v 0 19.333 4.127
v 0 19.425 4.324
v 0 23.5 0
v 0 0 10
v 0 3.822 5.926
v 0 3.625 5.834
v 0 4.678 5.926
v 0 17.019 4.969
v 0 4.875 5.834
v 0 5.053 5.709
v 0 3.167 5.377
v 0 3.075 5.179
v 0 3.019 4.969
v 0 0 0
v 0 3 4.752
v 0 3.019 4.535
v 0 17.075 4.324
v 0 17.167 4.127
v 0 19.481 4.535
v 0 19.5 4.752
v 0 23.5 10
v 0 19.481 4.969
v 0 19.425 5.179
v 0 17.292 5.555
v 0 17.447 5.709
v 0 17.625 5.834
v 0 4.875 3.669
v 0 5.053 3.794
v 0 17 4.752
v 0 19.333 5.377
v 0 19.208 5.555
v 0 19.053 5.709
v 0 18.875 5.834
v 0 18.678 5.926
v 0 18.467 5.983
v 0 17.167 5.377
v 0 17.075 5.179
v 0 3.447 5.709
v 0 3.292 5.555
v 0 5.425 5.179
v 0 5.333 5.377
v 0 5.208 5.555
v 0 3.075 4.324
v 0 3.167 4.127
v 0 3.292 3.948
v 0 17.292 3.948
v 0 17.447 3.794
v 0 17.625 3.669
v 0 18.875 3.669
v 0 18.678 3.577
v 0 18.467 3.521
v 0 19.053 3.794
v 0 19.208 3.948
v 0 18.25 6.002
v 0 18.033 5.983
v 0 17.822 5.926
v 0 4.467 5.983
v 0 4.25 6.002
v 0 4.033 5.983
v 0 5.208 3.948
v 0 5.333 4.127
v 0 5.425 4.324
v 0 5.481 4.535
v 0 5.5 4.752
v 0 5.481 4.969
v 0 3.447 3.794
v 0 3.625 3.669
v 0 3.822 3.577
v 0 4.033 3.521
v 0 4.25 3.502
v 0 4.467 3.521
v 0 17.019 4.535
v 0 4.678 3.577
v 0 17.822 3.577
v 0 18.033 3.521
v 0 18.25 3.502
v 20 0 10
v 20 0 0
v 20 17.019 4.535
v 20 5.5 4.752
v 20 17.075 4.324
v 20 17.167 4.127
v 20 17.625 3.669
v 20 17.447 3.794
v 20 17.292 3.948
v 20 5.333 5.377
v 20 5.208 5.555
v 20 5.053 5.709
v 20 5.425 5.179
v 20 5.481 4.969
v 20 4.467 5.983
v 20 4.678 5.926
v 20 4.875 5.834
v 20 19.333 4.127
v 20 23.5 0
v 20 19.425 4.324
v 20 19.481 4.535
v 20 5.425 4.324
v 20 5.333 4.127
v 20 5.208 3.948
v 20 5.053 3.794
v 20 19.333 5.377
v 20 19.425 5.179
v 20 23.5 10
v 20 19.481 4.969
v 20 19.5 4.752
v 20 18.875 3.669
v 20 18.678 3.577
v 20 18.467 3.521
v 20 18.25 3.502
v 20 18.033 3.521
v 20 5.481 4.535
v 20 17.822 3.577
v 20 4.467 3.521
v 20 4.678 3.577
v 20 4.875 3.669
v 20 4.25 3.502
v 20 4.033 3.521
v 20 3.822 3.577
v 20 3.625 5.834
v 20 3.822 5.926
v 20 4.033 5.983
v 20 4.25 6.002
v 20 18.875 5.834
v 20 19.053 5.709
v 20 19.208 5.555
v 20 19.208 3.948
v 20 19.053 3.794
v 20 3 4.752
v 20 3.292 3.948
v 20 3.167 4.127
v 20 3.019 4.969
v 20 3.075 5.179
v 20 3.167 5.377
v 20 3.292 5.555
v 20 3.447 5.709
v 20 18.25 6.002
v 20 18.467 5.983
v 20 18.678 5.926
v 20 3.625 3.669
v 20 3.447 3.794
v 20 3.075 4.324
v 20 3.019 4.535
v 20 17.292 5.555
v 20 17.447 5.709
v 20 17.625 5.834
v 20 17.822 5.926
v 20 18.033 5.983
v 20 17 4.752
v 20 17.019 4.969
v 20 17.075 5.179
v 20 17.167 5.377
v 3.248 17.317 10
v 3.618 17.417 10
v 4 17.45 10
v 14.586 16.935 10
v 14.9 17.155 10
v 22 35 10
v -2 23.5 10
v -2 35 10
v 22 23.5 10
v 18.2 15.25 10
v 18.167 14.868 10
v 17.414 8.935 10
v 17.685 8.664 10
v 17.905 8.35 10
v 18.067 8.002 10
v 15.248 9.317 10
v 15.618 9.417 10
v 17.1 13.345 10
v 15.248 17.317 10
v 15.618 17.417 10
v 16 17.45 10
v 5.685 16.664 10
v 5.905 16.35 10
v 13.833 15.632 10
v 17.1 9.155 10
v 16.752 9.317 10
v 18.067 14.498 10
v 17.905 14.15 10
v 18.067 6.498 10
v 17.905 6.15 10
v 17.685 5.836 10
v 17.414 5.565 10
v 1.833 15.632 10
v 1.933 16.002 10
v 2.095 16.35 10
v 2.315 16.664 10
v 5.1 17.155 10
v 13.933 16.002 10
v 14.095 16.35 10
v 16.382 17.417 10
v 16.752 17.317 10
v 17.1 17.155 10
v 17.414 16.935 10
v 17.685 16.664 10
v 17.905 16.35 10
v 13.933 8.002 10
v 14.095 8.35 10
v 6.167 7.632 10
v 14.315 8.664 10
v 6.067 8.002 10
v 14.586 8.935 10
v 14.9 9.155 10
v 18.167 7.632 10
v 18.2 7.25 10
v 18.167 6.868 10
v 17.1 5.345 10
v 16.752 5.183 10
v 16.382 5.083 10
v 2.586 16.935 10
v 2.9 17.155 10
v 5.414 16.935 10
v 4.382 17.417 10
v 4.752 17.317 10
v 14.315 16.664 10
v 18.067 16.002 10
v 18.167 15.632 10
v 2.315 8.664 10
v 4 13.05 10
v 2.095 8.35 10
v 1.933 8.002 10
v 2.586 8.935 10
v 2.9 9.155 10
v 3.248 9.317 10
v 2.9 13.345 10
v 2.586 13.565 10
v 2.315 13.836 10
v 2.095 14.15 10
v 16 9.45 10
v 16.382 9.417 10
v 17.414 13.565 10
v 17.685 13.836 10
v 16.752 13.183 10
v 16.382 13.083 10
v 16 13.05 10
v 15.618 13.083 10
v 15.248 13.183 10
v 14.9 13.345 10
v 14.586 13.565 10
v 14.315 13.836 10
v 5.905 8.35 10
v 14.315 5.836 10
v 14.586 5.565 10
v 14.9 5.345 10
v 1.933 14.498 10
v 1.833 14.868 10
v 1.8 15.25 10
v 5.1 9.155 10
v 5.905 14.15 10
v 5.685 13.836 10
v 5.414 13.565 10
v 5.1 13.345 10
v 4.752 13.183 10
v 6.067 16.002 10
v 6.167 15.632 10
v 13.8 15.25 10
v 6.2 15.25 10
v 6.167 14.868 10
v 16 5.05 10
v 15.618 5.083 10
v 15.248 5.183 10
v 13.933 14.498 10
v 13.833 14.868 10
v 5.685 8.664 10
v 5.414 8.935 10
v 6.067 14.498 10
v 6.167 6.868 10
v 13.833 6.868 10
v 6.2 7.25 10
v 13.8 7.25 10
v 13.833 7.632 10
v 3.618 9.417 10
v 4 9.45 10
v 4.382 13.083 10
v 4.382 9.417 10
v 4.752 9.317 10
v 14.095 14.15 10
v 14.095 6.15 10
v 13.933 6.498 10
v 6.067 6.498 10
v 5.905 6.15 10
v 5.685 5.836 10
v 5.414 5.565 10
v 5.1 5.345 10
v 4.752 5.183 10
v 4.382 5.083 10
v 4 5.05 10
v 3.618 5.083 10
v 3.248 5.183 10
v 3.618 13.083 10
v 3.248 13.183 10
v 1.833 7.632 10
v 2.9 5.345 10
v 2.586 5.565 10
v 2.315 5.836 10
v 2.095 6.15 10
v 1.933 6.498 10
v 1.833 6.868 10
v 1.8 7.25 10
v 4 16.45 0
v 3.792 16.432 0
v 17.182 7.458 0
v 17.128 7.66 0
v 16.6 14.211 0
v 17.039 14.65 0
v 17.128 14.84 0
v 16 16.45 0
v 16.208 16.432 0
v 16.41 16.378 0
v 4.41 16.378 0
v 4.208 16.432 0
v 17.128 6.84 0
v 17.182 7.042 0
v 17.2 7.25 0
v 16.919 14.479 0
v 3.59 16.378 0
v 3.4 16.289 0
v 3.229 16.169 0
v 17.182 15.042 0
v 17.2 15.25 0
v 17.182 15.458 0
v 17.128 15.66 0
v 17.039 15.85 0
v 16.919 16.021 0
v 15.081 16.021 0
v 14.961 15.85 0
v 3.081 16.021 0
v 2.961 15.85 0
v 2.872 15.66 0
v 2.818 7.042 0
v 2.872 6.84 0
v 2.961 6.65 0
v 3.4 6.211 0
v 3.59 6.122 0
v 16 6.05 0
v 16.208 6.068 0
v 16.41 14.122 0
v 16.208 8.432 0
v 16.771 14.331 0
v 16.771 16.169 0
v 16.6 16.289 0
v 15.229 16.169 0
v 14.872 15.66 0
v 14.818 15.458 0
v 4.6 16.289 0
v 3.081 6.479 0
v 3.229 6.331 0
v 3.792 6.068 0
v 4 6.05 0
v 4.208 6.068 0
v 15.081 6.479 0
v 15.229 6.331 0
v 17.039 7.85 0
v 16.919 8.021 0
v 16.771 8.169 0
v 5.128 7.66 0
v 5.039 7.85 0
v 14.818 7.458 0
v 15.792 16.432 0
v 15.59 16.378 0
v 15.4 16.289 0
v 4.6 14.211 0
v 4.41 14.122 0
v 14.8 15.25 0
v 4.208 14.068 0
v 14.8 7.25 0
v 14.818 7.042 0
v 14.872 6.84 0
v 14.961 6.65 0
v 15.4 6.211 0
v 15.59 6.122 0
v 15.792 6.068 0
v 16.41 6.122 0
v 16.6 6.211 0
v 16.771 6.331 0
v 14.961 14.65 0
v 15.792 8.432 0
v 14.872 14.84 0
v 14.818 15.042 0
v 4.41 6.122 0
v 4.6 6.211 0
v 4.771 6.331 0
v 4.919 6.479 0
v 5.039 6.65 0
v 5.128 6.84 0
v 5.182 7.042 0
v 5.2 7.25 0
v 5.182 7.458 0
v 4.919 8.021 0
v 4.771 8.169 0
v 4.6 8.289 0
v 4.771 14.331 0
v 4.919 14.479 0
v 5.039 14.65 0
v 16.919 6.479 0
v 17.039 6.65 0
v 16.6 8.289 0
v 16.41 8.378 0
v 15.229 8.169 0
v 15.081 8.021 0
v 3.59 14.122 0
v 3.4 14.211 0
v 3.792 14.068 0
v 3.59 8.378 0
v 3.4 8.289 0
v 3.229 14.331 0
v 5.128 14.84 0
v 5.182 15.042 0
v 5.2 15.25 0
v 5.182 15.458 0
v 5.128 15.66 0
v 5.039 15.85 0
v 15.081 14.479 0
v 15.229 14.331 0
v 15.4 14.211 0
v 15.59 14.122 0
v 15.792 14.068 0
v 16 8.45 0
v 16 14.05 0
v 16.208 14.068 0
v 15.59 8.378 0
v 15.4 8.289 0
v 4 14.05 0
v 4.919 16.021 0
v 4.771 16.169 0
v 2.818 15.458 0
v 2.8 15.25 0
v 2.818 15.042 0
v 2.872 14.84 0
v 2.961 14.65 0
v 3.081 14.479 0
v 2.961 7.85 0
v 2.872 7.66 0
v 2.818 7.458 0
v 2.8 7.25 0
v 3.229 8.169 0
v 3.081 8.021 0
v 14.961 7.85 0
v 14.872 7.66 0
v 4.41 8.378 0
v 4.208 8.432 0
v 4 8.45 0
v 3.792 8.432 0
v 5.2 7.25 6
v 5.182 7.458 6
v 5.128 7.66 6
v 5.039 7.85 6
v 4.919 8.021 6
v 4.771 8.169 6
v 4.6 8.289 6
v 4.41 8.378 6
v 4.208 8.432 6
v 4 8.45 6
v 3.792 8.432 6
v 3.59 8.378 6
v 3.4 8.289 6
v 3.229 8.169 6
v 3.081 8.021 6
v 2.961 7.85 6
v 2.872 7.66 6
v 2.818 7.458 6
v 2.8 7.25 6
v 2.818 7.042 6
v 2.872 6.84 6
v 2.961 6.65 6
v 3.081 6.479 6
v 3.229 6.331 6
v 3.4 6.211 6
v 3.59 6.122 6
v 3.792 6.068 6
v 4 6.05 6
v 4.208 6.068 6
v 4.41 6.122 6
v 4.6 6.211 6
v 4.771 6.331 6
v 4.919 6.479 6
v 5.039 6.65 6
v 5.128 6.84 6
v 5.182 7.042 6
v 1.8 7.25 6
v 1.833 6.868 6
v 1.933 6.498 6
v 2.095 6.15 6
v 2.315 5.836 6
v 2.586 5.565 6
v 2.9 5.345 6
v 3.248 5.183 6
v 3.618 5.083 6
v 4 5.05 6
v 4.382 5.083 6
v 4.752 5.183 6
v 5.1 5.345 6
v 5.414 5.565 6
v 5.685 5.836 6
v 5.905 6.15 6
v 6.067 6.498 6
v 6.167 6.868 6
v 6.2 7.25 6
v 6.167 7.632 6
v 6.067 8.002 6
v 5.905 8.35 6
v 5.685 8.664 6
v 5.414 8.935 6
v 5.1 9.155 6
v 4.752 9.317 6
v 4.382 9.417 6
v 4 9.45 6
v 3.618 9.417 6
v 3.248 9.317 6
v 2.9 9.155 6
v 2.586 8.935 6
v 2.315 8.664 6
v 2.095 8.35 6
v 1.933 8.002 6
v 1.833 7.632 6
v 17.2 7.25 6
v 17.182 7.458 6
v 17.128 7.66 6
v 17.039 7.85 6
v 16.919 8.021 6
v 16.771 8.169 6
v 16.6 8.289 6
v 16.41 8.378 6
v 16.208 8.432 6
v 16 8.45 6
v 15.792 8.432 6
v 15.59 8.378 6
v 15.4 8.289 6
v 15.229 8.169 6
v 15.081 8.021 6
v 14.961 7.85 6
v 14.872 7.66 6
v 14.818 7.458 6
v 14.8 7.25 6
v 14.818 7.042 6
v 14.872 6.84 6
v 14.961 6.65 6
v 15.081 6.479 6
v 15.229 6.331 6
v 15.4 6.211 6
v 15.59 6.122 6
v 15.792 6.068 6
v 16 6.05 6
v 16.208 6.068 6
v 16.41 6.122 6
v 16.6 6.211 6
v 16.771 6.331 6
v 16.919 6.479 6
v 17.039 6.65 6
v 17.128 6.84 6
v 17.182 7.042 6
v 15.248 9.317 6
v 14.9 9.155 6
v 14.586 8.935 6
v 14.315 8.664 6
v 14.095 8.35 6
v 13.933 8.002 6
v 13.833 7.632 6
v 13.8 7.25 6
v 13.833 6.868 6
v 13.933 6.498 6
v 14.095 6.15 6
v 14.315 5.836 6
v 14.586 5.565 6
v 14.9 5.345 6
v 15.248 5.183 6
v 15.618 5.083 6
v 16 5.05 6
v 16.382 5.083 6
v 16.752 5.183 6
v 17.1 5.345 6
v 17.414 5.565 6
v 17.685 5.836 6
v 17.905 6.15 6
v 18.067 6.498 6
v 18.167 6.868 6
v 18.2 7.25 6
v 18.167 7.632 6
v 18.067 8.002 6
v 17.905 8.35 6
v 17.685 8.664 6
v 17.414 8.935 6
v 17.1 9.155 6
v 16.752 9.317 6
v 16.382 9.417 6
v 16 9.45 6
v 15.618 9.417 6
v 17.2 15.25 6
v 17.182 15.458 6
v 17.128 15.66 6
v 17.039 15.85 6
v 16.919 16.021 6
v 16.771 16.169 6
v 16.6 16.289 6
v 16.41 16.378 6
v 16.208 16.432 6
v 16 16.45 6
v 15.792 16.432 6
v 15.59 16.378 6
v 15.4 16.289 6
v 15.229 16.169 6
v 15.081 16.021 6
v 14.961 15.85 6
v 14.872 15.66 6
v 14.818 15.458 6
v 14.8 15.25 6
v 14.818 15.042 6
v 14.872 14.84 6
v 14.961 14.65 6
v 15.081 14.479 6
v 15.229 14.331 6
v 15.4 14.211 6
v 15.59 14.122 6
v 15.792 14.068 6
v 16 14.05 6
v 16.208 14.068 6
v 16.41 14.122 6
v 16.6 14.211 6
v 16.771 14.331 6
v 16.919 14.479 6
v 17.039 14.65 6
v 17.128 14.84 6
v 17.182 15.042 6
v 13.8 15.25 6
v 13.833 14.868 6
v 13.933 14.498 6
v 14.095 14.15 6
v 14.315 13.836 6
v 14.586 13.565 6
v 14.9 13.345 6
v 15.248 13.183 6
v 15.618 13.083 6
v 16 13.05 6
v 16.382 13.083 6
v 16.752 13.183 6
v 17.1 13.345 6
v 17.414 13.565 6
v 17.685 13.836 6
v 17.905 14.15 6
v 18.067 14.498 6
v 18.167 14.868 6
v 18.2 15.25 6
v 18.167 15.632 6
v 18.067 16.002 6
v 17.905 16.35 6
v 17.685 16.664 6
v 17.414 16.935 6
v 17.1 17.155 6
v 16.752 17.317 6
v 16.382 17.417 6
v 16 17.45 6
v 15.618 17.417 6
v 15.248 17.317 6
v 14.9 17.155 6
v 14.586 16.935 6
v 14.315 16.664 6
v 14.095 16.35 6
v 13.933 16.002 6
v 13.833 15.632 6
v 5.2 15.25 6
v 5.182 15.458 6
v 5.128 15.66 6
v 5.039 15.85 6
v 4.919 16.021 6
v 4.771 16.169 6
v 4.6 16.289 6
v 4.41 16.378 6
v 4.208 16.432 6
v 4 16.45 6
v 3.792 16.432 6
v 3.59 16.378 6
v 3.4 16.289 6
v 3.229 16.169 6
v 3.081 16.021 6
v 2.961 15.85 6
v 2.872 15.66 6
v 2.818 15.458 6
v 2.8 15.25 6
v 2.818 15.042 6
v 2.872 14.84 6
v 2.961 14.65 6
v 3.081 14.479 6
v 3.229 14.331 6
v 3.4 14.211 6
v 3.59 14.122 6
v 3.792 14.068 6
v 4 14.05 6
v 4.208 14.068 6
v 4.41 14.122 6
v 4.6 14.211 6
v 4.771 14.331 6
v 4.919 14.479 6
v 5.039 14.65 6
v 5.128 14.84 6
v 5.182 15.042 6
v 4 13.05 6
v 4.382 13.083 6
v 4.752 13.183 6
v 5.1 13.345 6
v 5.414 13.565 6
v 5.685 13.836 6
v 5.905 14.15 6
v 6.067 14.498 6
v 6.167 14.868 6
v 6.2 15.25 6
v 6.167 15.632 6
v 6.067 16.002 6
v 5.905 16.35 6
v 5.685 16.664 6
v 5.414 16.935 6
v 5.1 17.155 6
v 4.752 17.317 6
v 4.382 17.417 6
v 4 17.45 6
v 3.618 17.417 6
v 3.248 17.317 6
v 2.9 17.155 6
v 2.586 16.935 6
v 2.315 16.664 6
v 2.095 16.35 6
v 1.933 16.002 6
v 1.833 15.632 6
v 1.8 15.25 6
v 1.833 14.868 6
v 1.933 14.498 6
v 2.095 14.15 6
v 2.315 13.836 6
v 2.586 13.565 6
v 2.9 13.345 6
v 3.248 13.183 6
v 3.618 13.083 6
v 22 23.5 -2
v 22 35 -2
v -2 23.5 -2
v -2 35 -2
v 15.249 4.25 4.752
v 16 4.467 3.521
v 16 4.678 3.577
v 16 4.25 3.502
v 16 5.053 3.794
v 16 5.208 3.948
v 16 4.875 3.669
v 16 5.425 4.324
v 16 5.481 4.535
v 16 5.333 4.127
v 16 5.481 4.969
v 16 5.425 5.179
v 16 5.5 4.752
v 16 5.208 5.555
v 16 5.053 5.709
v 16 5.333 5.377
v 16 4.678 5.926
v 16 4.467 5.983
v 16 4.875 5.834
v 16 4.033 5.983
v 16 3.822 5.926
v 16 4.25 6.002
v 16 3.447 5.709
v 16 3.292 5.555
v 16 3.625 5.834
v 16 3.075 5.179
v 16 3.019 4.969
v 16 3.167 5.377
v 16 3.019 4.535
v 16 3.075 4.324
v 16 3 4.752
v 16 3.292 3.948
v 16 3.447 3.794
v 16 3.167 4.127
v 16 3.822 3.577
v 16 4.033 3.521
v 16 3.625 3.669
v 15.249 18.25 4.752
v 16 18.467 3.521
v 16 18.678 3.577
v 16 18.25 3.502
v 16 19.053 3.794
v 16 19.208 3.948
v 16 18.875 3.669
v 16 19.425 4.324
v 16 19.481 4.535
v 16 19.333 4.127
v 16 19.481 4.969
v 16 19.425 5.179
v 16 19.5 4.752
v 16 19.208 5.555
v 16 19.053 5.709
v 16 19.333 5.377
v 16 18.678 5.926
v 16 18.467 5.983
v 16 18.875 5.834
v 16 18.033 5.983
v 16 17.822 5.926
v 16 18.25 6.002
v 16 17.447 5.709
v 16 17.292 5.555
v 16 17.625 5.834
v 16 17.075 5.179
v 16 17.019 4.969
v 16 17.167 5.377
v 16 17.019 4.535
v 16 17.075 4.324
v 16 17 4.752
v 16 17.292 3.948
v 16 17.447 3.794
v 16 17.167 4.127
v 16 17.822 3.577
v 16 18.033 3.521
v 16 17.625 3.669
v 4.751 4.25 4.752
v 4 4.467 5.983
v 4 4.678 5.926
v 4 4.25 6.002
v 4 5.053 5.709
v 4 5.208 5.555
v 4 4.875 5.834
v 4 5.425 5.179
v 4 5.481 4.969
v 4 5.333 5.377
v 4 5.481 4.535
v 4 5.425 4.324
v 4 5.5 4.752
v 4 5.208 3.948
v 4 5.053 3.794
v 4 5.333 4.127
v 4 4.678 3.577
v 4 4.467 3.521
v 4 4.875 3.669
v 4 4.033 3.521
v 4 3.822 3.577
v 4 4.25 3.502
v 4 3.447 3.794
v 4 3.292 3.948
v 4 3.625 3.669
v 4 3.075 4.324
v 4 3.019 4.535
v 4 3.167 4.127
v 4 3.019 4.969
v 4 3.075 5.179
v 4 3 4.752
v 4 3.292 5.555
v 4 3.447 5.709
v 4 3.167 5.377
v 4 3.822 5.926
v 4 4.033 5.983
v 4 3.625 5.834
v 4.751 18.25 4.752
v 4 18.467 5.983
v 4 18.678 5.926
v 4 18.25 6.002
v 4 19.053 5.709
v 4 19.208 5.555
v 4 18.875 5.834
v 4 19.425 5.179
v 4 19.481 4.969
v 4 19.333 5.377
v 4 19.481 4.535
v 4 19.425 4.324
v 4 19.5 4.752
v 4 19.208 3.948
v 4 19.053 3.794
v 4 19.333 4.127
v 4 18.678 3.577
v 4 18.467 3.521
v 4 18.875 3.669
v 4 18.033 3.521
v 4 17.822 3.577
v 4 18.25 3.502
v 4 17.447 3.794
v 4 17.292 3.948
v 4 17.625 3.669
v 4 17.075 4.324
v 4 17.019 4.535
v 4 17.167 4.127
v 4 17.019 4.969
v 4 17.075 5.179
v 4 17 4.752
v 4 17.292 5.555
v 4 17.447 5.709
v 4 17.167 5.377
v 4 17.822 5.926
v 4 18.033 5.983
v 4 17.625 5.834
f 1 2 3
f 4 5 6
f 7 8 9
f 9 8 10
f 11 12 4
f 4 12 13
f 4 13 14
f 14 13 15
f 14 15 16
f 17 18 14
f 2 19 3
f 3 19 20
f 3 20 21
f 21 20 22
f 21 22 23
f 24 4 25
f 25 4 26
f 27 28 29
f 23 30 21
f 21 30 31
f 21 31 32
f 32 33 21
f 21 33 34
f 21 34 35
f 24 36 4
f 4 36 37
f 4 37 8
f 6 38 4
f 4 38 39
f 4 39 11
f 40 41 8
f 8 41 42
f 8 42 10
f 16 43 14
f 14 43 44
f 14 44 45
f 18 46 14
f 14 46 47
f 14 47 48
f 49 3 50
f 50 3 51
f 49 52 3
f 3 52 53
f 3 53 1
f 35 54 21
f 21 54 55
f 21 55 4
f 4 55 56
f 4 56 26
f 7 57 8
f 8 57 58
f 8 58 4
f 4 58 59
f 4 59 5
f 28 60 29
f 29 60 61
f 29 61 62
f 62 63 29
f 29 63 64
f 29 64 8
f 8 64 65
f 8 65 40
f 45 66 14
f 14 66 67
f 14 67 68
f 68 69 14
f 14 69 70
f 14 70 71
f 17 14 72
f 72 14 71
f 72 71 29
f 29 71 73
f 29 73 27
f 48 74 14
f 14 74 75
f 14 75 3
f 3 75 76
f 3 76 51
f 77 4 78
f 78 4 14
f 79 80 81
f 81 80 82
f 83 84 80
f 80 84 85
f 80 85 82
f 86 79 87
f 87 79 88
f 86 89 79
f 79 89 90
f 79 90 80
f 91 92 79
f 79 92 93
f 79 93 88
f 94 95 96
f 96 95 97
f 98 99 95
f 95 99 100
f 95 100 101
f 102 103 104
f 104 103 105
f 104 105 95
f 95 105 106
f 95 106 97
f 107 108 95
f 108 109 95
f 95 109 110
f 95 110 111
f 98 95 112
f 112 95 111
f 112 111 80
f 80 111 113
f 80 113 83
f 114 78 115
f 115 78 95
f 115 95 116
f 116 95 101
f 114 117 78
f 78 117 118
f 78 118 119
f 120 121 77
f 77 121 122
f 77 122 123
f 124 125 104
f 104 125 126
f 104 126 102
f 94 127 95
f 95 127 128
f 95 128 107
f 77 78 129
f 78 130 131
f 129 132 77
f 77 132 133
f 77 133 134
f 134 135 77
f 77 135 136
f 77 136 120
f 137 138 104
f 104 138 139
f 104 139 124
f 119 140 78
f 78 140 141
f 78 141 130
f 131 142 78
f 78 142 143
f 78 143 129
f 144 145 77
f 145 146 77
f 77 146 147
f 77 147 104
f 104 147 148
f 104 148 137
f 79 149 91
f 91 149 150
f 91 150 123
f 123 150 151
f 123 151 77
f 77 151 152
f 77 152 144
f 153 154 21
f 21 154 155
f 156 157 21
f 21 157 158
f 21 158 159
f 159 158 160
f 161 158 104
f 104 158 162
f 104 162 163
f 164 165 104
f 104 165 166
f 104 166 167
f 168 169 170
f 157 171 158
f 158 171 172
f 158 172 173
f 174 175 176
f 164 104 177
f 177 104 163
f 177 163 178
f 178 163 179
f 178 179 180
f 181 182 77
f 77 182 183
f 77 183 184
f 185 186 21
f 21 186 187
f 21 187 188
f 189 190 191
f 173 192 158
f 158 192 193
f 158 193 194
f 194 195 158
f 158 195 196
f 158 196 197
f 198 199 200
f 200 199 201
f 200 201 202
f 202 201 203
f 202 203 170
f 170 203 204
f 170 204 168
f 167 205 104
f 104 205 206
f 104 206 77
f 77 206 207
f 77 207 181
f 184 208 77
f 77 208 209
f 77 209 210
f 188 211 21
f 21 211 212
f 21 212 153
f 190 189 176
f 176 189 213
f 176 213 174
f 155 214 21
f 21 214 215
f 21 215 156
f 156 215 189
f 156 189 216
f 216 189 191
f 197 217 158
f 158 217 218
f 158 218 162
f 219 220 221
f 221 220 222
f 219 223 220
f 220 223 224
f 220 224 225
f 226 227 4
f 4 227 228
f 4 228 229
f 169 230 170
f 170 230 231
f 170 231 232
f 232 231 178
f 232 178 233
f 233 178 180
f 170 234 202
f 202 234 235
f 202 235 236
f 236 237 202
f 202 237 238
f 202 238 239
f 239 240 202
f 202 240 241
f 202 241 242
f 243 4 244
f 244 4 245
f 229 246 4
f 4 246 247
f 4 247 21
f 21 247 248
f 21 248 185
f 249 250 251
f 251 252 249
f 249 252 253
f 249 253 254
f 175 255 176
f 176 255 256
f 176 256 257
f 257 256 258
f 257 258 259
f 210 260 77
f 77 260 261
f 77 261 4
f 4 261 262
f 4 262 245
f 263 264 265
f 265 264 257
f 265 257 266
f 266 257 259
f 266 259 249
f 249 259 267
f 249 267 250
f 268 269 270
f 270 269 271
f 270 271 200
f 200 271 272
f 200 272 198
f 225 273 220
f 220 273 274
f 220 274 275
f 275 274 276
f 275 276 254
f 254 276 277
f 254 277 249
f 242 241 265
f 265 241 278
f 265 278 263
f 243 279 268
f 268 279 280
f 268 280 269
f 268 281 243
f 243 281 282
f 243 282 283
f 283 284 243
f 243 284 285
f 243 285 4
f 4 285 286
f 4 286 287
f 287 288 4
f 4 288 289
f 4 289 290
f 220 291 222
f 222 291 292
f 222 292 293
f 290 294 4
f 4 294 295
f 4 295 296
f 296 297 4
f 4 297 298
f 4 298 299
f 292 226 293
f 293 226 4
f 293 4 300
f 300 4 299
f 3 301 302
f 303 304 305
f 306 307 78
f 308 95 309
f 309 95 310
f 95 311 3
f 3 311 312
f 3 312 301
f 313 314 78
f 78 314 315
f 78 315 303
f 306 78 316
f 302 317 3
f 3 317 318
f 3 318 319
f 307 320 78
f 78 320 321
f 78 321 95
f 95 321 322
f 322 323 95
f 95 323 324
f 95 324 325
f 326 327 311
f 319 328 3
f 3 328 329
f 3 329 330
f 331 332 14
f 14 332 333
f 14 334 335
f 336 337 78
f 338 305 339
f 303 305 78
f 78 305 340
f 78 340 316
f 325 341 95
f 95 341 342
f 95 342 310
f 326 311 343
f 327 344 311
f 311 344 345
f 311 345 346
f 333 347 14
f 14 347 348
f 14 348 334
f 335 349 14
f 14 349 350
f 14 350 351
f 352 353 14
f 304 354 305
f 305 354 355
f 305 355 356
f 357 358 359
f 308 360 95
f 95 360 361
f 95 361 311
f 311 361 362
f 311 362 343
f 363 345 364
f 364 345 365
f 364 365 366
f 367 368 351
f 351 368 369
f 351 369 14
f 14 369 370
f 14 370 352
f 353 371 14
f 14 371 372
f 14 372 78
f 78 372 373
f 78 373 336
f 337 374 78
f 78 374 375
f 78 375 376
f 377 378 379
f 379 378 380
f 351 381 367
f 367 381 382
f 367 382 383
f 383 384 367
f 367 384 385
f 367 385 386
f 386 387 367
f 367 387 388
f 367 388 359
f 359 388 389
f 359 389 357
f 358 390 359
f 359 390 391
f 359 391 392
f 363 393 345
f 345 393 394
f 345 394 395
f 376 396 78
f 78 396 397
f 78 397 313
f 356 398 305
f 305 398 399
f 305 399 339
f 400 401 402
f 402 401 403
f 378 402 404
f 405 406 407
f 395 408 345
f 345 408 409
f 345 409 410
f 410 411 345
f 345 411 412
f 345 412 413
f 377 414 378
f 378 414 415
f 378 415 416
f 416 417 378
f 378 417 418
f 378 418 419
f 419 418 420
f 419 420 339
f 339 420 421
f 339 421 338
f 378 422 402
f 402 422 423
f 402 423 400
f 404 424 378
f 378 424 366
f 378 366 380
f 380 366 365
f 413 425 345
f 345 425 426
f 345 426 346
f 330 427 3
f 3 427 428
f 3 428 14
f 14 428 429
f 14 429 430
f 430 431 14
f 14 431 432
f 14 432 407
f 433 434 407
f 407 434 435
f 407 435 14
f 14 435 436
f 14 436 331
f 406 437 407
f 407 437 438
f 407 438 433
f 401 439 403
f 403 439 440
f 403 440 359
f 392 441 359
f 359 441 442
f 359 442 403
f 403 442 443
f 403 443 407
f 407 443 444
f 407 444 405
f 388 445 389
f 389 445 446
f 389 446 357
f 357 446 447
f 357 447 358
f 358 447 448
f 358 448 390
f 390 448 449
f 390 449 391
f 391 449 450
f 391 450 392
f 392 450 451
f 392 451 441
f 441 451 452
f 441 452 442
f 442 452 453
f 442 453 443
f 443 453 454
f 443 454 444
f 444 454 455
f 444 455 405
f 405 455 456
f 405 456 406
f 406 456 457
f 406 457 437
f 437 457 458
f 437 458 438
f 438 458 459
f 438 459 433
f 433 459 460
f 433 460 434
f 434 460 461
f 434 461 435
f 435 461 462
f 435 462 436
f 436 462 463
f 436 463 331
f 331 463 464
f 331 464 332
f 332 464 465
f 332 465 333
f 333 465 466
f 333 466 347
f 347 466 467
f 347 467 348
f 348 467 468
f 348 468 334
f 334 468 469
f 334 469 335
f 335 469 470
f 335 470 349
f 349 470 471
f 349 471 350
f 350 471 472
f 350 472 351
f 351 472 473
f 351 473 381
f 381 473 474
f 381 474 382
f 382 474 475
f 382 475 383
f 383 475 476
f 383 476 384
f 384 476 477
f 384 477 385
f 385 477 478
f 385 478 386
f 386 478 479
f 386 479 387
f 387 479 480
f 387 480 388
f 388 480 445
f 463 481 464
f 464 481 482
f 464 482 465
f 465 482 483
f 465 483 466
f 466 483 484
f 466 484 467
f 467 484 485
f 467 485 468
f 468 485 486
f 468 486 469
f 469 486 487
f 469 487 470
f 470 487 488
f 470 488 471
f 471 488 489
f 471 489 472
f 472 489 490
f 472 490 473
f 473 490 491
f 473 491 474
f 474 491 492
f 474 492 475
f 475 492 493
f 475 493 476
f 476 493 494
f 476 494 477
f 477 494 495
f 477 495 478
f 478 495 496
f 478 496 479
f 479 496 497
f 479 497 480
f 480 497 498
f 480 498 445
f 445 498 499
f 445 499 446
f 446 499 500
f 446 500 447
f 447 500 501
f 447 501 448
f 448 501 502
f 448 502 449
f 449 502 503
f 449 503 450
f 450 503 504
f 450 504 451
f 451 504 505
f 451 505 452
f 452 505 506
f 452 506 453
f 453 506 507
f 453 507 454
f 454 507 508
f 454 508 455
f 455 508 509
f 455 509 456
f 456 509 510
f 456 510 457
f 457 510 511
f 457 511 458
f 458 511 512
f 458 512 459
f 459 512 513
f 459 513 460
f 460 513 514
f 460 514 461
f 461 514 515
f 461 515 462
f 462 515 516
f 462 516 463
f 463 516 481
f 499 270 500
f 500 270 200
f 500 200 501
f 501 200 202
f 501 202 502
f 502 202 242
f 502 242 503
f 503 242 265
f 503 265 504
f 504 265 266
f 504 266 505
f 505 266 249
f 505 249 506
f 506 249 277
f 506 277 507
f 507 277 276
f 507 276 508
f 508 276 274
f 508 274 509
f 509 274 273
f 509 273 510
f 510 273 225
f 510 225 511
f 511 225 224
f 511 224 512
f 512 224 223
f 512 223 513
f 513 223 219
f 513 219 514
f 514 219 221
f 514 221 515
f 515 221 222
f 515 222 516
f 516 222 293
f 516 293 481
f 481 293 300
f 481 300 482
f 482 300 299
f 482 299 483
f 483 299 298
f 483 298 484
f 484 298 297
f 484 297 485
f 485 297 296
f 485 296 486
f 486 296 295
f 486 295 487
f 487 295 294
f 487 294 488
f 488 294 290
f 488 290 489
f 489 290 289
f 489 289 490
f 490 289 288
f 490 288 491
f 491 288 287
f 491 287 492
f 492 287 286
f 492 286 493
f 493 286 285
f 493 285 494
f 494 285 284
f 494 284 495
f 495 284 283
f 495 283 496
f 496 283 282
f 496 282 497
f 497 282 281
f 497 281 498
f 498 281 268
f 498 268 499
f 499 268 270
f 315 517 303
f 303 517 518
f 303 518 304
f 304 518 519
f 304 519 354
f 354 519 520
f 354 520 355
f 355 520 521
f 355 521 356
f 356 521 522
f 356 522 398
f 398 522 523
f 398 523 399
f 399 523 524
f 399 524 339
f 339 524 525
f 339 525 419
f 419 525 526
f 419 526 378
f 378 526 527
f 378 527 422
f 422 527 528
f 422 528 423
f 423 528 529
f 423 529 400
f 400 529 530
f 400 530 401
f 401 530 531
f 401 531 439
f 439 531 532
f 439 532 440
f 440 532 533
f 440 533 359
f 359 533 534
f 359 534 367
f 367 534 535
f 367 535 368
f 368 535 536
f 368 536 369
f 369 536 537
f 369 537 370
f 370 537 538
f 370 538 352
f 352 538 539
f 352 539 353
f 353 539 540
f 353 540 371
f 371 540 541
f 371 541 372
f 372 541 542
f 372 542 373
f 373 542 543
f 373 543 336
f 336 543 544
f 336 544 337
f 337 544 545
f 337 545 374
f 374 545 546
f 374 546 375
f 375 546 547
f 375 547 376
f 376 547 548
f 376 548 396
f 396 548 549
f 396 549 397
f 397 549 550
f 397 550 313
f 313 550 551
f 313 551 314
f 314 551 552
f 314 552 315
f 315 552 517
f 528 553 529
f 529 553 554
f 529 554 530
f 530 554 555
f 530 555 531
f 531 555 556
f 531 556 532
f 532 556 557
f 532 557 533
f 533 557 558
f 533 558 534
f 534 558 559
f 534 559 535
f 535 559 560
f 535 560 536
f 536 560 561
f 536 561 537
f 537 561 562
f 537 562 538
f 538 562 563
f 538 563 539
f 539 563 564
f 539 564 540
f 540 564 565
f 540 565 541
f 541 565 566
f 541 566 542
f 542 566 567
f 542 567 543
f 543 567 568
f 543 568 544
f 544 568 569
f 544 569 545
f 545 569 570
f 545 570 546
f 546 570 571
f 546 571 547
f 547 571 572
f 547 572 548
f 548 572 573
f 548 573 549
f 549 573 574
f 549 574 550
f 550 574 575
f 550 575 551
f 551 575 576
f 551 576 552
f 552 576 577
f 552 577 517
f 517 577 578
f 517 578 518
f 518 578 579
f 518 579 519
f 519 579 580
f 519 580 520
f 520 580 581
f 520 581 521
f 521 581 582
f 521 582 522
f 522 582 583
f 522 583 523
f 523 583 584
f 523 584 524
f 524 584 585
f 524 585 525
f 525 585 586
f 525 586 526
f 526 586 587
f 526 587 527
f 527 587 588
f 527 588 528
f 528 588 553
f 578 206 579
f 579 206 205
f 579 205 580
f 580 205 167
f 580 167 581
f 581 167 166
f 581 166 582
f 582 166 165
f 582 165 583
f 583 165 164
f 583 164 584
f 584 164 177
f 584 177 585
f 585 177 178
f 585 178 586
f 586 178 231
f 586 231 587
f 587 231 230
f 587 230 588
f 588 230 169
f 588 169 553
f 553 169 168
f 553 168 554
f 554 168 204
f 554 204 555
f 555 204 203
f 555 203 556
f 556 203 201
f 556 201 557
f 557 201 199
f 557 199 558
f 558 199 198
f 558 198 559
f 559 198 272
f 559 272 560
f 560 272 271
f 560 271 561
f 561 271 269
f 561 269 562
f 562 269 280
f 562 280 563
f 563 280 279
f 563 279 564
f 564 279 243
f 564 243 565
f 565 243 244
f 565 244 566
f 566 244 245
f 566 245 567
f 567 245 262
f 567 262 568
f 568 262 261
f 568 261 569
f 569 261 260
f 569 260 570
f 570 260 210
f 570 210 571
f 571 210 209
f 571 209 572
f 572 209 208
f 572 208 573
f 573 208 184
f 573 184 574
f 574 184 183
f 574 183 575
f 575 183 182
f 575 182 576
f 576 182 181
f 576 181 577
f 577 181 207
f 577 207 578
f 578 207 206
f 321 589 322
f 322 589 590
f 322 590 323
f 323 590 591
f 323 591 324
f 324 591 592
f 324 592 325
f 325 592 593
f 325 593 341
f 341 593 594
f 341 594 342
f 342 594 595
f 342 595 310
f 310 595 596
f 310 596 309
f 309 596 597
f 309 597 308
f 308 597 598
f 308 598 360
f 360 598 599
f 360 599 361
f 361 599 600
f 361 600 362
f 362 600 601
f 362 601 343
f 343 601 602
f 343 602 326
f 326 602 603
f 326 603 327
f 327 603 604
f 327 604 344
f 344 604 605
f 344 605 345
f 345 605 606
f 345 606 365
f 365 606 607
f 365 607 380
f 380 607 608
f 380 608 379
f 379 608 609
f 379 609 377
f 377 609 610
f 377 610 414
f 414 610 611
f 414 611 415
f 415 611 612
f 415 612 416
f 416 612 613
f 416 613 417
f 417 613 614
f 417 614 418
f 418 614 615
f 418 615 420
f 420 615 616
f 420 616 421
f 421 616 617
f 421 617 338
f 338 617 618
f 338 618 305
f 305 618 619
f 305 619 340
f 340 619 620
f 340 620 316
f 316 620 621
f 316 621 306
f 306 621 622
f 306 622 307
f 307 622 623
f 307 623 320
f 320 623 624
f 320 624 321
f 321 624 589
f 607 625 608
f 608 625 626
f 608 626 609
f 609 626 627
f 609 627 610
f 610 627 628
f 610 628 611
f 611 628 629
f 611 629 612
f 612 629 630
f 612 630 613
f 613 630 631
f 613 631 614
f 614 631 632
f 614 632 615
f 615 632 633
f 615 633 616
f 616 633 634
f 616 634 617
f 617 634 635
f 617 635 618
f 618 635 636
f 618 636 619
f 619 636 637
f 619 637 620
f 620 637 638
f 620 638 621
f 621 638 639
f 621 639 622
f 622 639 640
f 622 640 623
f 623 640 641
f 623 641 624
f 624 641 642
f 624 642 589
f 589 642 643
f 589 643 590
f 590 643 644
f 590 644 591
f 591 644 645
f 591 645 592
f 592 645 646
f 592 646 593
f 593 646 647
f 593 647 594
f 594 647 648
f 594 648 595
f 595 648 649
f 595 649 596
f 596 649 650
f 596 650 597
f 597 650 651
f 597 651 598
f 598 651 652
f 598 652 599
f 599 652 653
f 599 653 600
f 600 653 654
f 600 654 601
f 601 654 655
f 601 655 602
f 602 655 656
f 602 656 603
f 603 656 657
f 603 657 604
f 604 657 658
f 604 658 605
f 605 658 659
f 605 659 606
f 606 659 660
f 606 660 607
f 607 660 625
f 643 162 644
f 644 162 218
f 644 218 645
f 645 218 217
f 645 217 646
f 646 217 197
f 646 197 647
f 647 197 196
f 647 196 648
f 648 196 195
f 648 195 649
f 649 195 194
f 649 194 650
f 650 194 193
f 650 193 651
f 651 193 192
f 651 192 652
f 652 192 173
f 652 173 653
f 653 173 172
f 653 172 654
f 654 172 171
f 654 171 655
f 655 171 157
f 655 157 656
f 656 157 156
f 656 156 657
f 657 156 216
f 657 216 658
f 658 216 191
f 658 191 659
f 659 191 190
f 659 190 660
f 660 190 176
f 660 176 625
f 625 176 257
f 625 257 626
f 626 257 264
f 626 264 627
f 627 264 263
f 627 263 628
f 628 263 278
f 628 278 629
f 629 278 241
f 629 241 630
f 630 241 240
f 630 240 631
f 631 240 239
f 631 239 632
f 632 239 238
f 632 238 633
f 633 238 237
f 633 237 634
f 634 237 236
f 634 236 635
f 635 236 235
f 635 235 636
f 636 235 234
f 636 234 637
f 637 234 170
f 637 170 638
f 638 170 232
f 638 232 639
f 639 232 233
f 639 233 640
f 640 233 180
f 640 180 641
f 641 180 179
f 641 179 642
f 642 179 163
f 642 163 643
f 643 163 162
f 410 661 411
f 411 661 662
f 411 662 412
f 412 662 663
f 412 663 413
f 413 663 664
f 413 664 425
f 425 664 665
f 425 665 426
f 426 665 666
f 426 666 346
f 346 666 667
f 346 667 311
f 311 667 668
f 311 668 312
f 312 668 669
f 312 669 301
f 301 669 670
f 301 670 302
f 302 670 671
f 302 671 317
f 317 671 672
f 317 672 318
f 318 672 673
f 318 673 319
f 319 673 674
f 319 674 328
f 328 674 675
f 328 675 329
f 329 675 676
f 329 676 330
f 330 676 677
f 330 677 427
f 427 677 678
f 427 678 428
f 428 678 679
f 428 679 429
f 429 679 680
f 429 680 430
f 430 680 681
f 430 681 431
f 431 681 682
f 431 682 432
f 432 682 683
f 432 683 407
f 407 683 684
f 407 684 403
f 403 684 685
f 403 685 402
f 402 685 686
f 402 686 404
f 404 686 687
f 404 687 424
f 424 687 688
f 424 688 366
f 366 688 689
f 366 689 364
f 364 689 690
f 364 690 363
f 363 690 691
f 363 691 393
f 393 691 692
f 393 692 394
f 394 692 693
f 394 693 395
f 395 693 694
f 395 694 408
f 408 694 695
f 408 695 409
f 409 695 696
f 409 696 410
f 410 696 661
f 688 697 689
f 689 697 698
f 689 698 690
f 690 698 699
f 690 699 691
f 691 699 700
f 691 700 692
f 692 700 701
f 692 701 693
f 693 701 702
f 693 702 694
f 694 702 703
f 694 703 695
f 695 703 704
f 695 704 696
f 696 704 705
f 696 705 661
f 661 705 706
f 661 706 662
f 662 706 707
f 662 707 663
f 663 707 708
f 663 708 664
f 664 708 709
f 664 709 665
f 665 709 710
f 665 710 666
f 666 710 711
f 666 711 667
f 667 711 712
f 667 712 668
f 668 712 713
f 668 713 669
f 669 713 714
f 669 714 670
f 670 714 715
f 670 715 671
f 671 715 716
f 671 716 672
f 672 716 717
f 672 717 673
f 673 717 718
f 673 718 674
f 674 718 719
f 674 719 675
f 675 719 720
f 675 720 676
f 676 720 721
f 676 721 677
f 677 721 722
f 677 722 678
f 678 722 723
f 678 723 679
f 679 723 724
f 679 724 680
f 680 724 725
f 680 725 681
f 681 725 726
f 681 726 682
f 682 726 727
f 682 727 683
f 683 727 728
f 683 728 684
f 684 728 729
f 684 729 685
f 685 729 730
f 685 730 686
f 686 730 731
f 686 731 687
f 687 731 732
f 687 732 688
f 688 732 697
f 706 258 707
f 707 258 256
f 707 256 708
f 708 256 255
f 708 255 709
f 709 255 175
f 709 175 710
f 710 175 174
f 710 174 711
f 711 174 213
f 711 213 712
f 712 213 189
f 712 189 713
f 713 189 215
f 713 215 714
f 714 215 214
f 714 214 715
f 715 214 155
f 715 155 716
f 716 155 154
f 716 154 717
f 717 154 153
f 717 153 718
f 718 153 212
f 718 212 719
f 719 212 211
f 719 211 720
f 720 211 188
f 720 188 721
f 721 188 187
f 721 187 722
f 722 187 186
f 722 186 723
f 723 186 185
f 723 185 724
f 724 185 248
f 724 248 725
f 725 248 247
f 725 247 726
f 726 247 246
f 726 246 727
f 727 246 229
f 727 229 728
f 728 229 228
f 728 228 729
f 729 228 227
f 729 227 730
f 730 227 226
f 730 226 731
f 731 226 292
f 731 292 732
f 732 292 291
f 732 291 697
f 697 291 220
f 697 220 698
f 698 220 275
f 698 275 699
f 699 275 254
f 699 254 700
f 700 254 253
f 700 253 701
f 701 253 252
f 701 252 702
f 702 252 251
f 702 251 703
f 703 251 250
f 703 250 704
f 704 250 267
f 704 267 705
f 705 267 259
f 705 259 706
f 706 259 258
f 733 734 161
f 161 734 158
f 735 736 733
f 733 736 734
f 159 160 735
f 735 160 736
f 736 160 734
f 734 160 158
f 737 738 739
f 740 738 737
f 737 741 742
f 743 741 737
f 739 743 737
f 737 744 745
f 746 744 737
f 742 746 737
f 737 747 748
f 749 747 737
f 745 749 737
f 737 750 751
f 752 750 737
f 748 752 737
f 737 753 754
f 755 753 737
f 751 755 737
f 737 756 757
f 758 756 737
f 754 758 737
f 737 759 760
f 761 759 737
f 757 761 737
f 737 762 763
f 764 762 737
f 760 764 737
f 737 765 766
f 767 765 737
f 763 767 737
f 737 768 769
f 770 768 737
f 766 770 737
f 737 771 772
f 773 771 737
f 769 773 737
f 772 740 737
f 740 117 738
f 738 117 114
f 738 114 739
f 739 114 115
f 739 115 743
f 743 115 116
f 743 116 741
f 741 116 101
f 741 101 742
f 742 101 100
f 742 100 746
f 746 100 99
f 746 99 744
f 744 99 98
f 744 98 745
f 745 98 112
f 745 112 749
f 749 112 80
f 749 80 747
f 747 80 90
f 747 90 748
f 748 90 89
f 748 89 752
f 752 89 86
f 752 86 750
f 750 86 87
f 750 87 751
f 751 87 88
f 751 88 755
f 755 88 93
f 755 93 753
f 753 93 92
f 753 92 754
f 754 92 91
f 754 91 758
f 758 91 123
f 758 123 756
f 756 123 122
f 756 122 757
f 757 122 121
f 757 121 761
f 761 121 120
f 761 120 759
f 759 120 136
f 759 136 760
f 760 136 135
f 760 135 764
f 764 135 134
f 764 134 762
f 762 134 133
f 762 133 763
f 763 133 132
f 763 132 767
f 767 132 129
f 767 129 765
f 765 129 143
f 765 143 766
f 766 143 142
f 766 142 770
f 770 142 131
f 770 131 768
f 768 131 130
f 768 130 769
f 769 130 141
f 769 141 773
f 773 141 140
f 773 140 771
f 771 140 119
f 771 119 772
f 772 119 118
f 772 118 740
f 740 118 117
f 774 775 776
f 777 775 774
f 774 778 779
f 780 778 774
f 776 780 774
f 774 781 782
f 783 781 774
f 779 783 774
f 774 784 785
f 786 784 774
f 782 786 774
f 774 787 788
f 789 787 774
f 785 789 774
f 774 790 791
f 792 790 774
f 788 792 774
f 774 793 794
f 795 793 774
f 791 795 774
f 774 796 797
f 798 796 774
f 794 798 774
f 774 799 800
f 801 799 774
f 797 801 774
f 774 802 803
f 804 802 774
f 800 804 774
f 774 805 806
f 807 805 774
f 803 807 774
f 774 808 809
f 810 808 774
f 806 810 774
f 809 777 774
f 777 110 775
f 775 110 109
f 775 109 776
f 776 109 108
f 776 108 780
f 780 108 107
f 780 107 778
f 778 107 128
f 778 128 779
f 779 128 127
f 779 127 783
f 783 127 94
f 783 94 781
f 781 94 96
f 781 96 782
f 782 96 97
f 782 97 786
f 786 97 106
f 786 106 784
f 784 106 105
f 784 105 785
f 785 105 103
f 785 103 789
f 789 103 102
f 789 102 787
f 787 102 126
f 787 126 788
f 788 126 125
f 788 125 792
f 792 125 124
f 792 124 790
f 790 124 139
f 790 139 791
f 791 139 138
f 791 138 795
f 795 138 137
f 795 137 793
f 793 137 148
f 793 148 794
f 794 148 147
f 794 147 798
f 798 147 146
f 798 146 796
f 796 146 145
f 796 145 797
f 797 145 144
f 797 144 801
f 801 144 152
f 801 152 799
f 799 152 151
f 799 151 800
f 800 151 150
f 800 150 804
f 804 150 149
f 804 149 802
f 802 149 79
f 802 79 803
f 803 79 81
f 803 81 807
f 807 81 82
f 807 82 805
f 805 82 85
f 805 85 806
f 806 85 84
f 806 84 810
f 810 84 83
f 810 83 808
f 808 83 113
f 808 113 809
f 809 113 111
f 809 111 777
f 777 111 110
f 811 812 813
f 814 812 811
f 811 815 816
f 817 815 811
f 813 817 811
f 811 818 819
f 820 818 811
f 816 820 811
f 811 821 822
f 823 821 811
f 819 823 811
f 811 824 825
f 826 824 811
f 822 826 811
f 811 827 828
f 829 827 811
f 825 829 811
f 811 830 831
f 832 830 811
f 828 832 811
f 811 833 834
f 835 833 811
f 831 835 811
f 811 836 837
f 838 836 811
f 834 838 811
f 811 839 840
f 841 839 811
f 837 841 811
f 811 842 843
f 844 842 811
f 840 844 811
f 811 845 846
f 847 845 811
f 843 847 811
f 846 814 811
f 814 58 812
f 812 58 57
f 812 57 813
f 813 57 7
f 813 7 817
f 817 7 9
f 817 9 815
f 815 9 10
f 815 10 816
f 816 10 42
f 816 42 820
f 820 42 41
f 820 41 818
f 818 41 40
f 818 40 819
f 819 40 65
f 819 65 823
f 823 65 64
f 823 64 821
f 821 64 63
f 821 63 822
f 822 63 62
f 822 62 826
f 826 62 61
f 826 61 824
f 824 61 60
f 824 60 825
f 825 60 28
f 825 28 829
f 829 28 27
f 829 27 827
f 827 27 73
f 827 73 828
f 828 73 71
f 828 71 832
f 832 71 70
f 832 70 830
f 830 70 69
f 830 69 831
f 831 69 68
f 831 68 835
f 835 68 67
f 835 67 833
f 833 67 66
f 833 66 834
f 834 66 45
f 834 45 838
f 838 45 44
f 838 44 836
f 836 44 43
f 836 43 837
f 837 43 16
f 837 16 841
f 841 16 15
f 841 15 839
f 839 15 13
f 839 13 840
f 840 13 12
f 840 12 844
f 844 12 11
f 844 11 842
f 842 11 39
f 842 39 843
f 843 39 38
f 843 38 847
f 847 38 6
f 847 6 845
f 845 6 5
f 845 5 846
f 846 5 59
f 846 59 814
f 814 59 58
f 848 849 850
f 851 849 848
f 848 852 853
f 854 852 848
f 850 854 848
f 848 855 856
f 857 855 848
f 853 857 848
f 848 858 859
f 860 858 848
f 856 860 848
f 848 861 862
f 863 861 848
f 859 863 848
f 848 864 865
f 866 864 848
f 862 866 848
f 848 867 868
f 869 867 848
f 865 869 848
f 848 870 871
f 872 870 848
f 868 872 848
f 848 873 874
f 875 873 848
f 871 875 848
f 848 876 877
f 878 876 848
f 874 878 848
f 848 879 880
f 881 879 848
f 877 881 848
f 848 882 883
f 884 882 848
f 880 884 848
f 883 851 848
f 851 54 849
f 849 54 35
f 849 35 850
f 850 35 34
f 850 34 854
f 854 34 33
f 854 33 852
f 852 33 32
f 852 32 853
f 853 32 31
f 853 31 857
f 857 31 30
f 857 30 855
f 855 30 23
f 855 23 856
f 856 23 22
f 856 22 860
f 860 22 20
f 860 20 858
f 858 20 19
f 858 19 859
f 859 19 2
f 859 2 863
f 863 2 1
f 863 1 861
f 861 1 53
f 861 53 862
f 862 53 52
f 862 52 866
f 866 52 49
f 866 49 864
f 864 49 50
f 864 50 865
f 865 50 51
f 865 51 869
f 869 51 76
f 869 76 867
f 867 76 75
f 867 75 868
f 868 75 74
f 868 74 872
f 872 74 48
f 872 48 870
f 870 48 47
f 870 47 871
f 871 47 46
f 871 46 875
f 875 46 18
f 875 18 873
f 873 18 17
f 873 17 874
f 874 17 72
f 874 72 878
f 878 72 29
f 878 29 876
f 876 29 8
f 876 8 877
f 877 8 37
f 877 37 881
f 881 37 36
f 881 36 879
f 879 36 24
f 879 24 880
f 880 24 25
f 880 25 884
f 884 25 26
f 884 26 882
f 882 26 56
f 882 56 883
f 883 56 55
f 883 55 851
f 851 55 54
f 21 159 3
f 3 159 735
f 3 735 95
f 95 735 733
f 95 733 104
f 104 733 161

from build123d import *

# Parameters (mm, degrees)
SKETCH1_W                       = 20
SKETCH1_H                       = 22.5
BOSS_EXTRUDE1_DEPTH             = 10
CBORE_FOR_M2_SHCS1_D            = 2.4
CBORE_FOR_M2_SHCS1_CBORE_D      = 4.4
CBORE_FOR_M2_SHCS1_CBORE_DEPTH  = 4
SKETCH4_W                       = 24
SKETCH4_H                       = 12
BOSS_EXTRUDE2_DEPTH             = 12.5
TAP_DRILL_FOR_M3X0_5_TAP1_D     = 2.5
TAP_DRILL_FOR_M3X0_5_TAP1_DEPTH = 4
TAP_DRILL_FOR_M3X0_5_TAP1_TIP   = 0.751075774
TAP_DRILL_FOR_M3X0_5_TAP2_D     = 2.5
TAP_DRILL_FOR_M3X0_5_TAP2_DEPTH = 4
TAP_DRILL_FOR_M3X0_5_TAP2_TIP   = 0.751075774
CUT_EXTRUDE1_DEPTH              = 1


with BuildPart() as part:
    # Sketch1 → Boss-Extrude1 (new body)
    with BuildSketch(Plane.XY):
        with Locations((10, 11.25)):
            Rectangle(SKETCH1_W, SKETCH1_H)
    extrude(amount=BOSS_EXTRUDE1_DEPTH)

    # CBORE for M2 SHCS1 (through all)
    with Locations(Plane.XY.offset(10)):
        with Locations((4, 15.25), (16, 15.25), (16, 7.25), (4, 7.25)):
            CounterBoreHole(CBORE_FOR_M2_SHCS1_D / 2, CBORE_FOR_M2_SHCS1_CBORE_D / 2, CBORE_FOR_M2_SHCS1_CBORE_DEPTH)

    # Sketch4 → Boss-Extrude2 (add)
    with BuildSketch(Plane(origin=(0, 22.5, 0), x_dir=(1, 0, 0), z_dir=(0, 1, 0))):
        with Locations((10, -4)):
            Rectangle(SKETCH4_W, SKETCH4_H)
    extrude(amount=BOSS_EXTRUDE2_DEPTH)

    # Tap Drill for M3x0.5 Tap1
    with Locations(Plane(origin=(20, 0, 0), x_dir=(0, 0, -1), z_dir=(1, 0, 0))):
        with Locations((-4.751843682, 18.25), (-4.751843682, 4.25)):
            Hole(TAP_DRILL_FOR_M3X0_5_TAP1_D / 2, depth=TAP_DRILL_FOR_M3X0_5_TAP1_DEPTH)
            with Locations((0, 0, -(TAP_DRILL_FOR_M3X0_5_TAP1_DEPTH + TAP_DRILL_FOR_M3X0_5_TAP1_TIP / 2))):  # 118° drill point
                Cone(0, TAP_DRILL_FOR_M3X0_5_TAP1_D / 2, TAP_DRILL_FOR_M3X0_5_TAP1_TIP, mode=Mode.SUBTRACT)

    # Tap Drill for M3x0.5 Tap2
    with Locations(Plane.ZY):
        with Locations((4.751843682, 18.25), (4.751843682, 4.25)):
            Hole(TAP_DRILL_FOR_M3X0_5_TAP2_D / 2, depth=TAP_DRILL_FOR_M3X0_5_TAP2_DEPTH)
            with Locations((0, 0, -(TAP_DRILL_FOR_M3X0_5_TAP2_DEPTH + TAP_DRILL_FOR_M3X0_5_TAP2_TIP / 2))):  # 118° drill point
                Cone(0, TAP_DRILL_FOR_M3X0_5_TAP2_D / 2, TAP_DRILL_FOR_M3X0_5_TAP2_TIP, mode=Mode.SUBTRACT)

    # Sketch9 → Cut-Extrude1 (cut)
    with BuildSketch(Plane.XZ.offset(-22.5)):
        Polygon((0, 0), (0, 10), (-2, 10), (-2, -2), (22, -2), (22, 10), (20, 10), (20, 0), align=None)
    extrude(amount=-CUT_EXTRUDE1_DEPTH, mode=Mode.SUBTRACT)


solid = part.part
